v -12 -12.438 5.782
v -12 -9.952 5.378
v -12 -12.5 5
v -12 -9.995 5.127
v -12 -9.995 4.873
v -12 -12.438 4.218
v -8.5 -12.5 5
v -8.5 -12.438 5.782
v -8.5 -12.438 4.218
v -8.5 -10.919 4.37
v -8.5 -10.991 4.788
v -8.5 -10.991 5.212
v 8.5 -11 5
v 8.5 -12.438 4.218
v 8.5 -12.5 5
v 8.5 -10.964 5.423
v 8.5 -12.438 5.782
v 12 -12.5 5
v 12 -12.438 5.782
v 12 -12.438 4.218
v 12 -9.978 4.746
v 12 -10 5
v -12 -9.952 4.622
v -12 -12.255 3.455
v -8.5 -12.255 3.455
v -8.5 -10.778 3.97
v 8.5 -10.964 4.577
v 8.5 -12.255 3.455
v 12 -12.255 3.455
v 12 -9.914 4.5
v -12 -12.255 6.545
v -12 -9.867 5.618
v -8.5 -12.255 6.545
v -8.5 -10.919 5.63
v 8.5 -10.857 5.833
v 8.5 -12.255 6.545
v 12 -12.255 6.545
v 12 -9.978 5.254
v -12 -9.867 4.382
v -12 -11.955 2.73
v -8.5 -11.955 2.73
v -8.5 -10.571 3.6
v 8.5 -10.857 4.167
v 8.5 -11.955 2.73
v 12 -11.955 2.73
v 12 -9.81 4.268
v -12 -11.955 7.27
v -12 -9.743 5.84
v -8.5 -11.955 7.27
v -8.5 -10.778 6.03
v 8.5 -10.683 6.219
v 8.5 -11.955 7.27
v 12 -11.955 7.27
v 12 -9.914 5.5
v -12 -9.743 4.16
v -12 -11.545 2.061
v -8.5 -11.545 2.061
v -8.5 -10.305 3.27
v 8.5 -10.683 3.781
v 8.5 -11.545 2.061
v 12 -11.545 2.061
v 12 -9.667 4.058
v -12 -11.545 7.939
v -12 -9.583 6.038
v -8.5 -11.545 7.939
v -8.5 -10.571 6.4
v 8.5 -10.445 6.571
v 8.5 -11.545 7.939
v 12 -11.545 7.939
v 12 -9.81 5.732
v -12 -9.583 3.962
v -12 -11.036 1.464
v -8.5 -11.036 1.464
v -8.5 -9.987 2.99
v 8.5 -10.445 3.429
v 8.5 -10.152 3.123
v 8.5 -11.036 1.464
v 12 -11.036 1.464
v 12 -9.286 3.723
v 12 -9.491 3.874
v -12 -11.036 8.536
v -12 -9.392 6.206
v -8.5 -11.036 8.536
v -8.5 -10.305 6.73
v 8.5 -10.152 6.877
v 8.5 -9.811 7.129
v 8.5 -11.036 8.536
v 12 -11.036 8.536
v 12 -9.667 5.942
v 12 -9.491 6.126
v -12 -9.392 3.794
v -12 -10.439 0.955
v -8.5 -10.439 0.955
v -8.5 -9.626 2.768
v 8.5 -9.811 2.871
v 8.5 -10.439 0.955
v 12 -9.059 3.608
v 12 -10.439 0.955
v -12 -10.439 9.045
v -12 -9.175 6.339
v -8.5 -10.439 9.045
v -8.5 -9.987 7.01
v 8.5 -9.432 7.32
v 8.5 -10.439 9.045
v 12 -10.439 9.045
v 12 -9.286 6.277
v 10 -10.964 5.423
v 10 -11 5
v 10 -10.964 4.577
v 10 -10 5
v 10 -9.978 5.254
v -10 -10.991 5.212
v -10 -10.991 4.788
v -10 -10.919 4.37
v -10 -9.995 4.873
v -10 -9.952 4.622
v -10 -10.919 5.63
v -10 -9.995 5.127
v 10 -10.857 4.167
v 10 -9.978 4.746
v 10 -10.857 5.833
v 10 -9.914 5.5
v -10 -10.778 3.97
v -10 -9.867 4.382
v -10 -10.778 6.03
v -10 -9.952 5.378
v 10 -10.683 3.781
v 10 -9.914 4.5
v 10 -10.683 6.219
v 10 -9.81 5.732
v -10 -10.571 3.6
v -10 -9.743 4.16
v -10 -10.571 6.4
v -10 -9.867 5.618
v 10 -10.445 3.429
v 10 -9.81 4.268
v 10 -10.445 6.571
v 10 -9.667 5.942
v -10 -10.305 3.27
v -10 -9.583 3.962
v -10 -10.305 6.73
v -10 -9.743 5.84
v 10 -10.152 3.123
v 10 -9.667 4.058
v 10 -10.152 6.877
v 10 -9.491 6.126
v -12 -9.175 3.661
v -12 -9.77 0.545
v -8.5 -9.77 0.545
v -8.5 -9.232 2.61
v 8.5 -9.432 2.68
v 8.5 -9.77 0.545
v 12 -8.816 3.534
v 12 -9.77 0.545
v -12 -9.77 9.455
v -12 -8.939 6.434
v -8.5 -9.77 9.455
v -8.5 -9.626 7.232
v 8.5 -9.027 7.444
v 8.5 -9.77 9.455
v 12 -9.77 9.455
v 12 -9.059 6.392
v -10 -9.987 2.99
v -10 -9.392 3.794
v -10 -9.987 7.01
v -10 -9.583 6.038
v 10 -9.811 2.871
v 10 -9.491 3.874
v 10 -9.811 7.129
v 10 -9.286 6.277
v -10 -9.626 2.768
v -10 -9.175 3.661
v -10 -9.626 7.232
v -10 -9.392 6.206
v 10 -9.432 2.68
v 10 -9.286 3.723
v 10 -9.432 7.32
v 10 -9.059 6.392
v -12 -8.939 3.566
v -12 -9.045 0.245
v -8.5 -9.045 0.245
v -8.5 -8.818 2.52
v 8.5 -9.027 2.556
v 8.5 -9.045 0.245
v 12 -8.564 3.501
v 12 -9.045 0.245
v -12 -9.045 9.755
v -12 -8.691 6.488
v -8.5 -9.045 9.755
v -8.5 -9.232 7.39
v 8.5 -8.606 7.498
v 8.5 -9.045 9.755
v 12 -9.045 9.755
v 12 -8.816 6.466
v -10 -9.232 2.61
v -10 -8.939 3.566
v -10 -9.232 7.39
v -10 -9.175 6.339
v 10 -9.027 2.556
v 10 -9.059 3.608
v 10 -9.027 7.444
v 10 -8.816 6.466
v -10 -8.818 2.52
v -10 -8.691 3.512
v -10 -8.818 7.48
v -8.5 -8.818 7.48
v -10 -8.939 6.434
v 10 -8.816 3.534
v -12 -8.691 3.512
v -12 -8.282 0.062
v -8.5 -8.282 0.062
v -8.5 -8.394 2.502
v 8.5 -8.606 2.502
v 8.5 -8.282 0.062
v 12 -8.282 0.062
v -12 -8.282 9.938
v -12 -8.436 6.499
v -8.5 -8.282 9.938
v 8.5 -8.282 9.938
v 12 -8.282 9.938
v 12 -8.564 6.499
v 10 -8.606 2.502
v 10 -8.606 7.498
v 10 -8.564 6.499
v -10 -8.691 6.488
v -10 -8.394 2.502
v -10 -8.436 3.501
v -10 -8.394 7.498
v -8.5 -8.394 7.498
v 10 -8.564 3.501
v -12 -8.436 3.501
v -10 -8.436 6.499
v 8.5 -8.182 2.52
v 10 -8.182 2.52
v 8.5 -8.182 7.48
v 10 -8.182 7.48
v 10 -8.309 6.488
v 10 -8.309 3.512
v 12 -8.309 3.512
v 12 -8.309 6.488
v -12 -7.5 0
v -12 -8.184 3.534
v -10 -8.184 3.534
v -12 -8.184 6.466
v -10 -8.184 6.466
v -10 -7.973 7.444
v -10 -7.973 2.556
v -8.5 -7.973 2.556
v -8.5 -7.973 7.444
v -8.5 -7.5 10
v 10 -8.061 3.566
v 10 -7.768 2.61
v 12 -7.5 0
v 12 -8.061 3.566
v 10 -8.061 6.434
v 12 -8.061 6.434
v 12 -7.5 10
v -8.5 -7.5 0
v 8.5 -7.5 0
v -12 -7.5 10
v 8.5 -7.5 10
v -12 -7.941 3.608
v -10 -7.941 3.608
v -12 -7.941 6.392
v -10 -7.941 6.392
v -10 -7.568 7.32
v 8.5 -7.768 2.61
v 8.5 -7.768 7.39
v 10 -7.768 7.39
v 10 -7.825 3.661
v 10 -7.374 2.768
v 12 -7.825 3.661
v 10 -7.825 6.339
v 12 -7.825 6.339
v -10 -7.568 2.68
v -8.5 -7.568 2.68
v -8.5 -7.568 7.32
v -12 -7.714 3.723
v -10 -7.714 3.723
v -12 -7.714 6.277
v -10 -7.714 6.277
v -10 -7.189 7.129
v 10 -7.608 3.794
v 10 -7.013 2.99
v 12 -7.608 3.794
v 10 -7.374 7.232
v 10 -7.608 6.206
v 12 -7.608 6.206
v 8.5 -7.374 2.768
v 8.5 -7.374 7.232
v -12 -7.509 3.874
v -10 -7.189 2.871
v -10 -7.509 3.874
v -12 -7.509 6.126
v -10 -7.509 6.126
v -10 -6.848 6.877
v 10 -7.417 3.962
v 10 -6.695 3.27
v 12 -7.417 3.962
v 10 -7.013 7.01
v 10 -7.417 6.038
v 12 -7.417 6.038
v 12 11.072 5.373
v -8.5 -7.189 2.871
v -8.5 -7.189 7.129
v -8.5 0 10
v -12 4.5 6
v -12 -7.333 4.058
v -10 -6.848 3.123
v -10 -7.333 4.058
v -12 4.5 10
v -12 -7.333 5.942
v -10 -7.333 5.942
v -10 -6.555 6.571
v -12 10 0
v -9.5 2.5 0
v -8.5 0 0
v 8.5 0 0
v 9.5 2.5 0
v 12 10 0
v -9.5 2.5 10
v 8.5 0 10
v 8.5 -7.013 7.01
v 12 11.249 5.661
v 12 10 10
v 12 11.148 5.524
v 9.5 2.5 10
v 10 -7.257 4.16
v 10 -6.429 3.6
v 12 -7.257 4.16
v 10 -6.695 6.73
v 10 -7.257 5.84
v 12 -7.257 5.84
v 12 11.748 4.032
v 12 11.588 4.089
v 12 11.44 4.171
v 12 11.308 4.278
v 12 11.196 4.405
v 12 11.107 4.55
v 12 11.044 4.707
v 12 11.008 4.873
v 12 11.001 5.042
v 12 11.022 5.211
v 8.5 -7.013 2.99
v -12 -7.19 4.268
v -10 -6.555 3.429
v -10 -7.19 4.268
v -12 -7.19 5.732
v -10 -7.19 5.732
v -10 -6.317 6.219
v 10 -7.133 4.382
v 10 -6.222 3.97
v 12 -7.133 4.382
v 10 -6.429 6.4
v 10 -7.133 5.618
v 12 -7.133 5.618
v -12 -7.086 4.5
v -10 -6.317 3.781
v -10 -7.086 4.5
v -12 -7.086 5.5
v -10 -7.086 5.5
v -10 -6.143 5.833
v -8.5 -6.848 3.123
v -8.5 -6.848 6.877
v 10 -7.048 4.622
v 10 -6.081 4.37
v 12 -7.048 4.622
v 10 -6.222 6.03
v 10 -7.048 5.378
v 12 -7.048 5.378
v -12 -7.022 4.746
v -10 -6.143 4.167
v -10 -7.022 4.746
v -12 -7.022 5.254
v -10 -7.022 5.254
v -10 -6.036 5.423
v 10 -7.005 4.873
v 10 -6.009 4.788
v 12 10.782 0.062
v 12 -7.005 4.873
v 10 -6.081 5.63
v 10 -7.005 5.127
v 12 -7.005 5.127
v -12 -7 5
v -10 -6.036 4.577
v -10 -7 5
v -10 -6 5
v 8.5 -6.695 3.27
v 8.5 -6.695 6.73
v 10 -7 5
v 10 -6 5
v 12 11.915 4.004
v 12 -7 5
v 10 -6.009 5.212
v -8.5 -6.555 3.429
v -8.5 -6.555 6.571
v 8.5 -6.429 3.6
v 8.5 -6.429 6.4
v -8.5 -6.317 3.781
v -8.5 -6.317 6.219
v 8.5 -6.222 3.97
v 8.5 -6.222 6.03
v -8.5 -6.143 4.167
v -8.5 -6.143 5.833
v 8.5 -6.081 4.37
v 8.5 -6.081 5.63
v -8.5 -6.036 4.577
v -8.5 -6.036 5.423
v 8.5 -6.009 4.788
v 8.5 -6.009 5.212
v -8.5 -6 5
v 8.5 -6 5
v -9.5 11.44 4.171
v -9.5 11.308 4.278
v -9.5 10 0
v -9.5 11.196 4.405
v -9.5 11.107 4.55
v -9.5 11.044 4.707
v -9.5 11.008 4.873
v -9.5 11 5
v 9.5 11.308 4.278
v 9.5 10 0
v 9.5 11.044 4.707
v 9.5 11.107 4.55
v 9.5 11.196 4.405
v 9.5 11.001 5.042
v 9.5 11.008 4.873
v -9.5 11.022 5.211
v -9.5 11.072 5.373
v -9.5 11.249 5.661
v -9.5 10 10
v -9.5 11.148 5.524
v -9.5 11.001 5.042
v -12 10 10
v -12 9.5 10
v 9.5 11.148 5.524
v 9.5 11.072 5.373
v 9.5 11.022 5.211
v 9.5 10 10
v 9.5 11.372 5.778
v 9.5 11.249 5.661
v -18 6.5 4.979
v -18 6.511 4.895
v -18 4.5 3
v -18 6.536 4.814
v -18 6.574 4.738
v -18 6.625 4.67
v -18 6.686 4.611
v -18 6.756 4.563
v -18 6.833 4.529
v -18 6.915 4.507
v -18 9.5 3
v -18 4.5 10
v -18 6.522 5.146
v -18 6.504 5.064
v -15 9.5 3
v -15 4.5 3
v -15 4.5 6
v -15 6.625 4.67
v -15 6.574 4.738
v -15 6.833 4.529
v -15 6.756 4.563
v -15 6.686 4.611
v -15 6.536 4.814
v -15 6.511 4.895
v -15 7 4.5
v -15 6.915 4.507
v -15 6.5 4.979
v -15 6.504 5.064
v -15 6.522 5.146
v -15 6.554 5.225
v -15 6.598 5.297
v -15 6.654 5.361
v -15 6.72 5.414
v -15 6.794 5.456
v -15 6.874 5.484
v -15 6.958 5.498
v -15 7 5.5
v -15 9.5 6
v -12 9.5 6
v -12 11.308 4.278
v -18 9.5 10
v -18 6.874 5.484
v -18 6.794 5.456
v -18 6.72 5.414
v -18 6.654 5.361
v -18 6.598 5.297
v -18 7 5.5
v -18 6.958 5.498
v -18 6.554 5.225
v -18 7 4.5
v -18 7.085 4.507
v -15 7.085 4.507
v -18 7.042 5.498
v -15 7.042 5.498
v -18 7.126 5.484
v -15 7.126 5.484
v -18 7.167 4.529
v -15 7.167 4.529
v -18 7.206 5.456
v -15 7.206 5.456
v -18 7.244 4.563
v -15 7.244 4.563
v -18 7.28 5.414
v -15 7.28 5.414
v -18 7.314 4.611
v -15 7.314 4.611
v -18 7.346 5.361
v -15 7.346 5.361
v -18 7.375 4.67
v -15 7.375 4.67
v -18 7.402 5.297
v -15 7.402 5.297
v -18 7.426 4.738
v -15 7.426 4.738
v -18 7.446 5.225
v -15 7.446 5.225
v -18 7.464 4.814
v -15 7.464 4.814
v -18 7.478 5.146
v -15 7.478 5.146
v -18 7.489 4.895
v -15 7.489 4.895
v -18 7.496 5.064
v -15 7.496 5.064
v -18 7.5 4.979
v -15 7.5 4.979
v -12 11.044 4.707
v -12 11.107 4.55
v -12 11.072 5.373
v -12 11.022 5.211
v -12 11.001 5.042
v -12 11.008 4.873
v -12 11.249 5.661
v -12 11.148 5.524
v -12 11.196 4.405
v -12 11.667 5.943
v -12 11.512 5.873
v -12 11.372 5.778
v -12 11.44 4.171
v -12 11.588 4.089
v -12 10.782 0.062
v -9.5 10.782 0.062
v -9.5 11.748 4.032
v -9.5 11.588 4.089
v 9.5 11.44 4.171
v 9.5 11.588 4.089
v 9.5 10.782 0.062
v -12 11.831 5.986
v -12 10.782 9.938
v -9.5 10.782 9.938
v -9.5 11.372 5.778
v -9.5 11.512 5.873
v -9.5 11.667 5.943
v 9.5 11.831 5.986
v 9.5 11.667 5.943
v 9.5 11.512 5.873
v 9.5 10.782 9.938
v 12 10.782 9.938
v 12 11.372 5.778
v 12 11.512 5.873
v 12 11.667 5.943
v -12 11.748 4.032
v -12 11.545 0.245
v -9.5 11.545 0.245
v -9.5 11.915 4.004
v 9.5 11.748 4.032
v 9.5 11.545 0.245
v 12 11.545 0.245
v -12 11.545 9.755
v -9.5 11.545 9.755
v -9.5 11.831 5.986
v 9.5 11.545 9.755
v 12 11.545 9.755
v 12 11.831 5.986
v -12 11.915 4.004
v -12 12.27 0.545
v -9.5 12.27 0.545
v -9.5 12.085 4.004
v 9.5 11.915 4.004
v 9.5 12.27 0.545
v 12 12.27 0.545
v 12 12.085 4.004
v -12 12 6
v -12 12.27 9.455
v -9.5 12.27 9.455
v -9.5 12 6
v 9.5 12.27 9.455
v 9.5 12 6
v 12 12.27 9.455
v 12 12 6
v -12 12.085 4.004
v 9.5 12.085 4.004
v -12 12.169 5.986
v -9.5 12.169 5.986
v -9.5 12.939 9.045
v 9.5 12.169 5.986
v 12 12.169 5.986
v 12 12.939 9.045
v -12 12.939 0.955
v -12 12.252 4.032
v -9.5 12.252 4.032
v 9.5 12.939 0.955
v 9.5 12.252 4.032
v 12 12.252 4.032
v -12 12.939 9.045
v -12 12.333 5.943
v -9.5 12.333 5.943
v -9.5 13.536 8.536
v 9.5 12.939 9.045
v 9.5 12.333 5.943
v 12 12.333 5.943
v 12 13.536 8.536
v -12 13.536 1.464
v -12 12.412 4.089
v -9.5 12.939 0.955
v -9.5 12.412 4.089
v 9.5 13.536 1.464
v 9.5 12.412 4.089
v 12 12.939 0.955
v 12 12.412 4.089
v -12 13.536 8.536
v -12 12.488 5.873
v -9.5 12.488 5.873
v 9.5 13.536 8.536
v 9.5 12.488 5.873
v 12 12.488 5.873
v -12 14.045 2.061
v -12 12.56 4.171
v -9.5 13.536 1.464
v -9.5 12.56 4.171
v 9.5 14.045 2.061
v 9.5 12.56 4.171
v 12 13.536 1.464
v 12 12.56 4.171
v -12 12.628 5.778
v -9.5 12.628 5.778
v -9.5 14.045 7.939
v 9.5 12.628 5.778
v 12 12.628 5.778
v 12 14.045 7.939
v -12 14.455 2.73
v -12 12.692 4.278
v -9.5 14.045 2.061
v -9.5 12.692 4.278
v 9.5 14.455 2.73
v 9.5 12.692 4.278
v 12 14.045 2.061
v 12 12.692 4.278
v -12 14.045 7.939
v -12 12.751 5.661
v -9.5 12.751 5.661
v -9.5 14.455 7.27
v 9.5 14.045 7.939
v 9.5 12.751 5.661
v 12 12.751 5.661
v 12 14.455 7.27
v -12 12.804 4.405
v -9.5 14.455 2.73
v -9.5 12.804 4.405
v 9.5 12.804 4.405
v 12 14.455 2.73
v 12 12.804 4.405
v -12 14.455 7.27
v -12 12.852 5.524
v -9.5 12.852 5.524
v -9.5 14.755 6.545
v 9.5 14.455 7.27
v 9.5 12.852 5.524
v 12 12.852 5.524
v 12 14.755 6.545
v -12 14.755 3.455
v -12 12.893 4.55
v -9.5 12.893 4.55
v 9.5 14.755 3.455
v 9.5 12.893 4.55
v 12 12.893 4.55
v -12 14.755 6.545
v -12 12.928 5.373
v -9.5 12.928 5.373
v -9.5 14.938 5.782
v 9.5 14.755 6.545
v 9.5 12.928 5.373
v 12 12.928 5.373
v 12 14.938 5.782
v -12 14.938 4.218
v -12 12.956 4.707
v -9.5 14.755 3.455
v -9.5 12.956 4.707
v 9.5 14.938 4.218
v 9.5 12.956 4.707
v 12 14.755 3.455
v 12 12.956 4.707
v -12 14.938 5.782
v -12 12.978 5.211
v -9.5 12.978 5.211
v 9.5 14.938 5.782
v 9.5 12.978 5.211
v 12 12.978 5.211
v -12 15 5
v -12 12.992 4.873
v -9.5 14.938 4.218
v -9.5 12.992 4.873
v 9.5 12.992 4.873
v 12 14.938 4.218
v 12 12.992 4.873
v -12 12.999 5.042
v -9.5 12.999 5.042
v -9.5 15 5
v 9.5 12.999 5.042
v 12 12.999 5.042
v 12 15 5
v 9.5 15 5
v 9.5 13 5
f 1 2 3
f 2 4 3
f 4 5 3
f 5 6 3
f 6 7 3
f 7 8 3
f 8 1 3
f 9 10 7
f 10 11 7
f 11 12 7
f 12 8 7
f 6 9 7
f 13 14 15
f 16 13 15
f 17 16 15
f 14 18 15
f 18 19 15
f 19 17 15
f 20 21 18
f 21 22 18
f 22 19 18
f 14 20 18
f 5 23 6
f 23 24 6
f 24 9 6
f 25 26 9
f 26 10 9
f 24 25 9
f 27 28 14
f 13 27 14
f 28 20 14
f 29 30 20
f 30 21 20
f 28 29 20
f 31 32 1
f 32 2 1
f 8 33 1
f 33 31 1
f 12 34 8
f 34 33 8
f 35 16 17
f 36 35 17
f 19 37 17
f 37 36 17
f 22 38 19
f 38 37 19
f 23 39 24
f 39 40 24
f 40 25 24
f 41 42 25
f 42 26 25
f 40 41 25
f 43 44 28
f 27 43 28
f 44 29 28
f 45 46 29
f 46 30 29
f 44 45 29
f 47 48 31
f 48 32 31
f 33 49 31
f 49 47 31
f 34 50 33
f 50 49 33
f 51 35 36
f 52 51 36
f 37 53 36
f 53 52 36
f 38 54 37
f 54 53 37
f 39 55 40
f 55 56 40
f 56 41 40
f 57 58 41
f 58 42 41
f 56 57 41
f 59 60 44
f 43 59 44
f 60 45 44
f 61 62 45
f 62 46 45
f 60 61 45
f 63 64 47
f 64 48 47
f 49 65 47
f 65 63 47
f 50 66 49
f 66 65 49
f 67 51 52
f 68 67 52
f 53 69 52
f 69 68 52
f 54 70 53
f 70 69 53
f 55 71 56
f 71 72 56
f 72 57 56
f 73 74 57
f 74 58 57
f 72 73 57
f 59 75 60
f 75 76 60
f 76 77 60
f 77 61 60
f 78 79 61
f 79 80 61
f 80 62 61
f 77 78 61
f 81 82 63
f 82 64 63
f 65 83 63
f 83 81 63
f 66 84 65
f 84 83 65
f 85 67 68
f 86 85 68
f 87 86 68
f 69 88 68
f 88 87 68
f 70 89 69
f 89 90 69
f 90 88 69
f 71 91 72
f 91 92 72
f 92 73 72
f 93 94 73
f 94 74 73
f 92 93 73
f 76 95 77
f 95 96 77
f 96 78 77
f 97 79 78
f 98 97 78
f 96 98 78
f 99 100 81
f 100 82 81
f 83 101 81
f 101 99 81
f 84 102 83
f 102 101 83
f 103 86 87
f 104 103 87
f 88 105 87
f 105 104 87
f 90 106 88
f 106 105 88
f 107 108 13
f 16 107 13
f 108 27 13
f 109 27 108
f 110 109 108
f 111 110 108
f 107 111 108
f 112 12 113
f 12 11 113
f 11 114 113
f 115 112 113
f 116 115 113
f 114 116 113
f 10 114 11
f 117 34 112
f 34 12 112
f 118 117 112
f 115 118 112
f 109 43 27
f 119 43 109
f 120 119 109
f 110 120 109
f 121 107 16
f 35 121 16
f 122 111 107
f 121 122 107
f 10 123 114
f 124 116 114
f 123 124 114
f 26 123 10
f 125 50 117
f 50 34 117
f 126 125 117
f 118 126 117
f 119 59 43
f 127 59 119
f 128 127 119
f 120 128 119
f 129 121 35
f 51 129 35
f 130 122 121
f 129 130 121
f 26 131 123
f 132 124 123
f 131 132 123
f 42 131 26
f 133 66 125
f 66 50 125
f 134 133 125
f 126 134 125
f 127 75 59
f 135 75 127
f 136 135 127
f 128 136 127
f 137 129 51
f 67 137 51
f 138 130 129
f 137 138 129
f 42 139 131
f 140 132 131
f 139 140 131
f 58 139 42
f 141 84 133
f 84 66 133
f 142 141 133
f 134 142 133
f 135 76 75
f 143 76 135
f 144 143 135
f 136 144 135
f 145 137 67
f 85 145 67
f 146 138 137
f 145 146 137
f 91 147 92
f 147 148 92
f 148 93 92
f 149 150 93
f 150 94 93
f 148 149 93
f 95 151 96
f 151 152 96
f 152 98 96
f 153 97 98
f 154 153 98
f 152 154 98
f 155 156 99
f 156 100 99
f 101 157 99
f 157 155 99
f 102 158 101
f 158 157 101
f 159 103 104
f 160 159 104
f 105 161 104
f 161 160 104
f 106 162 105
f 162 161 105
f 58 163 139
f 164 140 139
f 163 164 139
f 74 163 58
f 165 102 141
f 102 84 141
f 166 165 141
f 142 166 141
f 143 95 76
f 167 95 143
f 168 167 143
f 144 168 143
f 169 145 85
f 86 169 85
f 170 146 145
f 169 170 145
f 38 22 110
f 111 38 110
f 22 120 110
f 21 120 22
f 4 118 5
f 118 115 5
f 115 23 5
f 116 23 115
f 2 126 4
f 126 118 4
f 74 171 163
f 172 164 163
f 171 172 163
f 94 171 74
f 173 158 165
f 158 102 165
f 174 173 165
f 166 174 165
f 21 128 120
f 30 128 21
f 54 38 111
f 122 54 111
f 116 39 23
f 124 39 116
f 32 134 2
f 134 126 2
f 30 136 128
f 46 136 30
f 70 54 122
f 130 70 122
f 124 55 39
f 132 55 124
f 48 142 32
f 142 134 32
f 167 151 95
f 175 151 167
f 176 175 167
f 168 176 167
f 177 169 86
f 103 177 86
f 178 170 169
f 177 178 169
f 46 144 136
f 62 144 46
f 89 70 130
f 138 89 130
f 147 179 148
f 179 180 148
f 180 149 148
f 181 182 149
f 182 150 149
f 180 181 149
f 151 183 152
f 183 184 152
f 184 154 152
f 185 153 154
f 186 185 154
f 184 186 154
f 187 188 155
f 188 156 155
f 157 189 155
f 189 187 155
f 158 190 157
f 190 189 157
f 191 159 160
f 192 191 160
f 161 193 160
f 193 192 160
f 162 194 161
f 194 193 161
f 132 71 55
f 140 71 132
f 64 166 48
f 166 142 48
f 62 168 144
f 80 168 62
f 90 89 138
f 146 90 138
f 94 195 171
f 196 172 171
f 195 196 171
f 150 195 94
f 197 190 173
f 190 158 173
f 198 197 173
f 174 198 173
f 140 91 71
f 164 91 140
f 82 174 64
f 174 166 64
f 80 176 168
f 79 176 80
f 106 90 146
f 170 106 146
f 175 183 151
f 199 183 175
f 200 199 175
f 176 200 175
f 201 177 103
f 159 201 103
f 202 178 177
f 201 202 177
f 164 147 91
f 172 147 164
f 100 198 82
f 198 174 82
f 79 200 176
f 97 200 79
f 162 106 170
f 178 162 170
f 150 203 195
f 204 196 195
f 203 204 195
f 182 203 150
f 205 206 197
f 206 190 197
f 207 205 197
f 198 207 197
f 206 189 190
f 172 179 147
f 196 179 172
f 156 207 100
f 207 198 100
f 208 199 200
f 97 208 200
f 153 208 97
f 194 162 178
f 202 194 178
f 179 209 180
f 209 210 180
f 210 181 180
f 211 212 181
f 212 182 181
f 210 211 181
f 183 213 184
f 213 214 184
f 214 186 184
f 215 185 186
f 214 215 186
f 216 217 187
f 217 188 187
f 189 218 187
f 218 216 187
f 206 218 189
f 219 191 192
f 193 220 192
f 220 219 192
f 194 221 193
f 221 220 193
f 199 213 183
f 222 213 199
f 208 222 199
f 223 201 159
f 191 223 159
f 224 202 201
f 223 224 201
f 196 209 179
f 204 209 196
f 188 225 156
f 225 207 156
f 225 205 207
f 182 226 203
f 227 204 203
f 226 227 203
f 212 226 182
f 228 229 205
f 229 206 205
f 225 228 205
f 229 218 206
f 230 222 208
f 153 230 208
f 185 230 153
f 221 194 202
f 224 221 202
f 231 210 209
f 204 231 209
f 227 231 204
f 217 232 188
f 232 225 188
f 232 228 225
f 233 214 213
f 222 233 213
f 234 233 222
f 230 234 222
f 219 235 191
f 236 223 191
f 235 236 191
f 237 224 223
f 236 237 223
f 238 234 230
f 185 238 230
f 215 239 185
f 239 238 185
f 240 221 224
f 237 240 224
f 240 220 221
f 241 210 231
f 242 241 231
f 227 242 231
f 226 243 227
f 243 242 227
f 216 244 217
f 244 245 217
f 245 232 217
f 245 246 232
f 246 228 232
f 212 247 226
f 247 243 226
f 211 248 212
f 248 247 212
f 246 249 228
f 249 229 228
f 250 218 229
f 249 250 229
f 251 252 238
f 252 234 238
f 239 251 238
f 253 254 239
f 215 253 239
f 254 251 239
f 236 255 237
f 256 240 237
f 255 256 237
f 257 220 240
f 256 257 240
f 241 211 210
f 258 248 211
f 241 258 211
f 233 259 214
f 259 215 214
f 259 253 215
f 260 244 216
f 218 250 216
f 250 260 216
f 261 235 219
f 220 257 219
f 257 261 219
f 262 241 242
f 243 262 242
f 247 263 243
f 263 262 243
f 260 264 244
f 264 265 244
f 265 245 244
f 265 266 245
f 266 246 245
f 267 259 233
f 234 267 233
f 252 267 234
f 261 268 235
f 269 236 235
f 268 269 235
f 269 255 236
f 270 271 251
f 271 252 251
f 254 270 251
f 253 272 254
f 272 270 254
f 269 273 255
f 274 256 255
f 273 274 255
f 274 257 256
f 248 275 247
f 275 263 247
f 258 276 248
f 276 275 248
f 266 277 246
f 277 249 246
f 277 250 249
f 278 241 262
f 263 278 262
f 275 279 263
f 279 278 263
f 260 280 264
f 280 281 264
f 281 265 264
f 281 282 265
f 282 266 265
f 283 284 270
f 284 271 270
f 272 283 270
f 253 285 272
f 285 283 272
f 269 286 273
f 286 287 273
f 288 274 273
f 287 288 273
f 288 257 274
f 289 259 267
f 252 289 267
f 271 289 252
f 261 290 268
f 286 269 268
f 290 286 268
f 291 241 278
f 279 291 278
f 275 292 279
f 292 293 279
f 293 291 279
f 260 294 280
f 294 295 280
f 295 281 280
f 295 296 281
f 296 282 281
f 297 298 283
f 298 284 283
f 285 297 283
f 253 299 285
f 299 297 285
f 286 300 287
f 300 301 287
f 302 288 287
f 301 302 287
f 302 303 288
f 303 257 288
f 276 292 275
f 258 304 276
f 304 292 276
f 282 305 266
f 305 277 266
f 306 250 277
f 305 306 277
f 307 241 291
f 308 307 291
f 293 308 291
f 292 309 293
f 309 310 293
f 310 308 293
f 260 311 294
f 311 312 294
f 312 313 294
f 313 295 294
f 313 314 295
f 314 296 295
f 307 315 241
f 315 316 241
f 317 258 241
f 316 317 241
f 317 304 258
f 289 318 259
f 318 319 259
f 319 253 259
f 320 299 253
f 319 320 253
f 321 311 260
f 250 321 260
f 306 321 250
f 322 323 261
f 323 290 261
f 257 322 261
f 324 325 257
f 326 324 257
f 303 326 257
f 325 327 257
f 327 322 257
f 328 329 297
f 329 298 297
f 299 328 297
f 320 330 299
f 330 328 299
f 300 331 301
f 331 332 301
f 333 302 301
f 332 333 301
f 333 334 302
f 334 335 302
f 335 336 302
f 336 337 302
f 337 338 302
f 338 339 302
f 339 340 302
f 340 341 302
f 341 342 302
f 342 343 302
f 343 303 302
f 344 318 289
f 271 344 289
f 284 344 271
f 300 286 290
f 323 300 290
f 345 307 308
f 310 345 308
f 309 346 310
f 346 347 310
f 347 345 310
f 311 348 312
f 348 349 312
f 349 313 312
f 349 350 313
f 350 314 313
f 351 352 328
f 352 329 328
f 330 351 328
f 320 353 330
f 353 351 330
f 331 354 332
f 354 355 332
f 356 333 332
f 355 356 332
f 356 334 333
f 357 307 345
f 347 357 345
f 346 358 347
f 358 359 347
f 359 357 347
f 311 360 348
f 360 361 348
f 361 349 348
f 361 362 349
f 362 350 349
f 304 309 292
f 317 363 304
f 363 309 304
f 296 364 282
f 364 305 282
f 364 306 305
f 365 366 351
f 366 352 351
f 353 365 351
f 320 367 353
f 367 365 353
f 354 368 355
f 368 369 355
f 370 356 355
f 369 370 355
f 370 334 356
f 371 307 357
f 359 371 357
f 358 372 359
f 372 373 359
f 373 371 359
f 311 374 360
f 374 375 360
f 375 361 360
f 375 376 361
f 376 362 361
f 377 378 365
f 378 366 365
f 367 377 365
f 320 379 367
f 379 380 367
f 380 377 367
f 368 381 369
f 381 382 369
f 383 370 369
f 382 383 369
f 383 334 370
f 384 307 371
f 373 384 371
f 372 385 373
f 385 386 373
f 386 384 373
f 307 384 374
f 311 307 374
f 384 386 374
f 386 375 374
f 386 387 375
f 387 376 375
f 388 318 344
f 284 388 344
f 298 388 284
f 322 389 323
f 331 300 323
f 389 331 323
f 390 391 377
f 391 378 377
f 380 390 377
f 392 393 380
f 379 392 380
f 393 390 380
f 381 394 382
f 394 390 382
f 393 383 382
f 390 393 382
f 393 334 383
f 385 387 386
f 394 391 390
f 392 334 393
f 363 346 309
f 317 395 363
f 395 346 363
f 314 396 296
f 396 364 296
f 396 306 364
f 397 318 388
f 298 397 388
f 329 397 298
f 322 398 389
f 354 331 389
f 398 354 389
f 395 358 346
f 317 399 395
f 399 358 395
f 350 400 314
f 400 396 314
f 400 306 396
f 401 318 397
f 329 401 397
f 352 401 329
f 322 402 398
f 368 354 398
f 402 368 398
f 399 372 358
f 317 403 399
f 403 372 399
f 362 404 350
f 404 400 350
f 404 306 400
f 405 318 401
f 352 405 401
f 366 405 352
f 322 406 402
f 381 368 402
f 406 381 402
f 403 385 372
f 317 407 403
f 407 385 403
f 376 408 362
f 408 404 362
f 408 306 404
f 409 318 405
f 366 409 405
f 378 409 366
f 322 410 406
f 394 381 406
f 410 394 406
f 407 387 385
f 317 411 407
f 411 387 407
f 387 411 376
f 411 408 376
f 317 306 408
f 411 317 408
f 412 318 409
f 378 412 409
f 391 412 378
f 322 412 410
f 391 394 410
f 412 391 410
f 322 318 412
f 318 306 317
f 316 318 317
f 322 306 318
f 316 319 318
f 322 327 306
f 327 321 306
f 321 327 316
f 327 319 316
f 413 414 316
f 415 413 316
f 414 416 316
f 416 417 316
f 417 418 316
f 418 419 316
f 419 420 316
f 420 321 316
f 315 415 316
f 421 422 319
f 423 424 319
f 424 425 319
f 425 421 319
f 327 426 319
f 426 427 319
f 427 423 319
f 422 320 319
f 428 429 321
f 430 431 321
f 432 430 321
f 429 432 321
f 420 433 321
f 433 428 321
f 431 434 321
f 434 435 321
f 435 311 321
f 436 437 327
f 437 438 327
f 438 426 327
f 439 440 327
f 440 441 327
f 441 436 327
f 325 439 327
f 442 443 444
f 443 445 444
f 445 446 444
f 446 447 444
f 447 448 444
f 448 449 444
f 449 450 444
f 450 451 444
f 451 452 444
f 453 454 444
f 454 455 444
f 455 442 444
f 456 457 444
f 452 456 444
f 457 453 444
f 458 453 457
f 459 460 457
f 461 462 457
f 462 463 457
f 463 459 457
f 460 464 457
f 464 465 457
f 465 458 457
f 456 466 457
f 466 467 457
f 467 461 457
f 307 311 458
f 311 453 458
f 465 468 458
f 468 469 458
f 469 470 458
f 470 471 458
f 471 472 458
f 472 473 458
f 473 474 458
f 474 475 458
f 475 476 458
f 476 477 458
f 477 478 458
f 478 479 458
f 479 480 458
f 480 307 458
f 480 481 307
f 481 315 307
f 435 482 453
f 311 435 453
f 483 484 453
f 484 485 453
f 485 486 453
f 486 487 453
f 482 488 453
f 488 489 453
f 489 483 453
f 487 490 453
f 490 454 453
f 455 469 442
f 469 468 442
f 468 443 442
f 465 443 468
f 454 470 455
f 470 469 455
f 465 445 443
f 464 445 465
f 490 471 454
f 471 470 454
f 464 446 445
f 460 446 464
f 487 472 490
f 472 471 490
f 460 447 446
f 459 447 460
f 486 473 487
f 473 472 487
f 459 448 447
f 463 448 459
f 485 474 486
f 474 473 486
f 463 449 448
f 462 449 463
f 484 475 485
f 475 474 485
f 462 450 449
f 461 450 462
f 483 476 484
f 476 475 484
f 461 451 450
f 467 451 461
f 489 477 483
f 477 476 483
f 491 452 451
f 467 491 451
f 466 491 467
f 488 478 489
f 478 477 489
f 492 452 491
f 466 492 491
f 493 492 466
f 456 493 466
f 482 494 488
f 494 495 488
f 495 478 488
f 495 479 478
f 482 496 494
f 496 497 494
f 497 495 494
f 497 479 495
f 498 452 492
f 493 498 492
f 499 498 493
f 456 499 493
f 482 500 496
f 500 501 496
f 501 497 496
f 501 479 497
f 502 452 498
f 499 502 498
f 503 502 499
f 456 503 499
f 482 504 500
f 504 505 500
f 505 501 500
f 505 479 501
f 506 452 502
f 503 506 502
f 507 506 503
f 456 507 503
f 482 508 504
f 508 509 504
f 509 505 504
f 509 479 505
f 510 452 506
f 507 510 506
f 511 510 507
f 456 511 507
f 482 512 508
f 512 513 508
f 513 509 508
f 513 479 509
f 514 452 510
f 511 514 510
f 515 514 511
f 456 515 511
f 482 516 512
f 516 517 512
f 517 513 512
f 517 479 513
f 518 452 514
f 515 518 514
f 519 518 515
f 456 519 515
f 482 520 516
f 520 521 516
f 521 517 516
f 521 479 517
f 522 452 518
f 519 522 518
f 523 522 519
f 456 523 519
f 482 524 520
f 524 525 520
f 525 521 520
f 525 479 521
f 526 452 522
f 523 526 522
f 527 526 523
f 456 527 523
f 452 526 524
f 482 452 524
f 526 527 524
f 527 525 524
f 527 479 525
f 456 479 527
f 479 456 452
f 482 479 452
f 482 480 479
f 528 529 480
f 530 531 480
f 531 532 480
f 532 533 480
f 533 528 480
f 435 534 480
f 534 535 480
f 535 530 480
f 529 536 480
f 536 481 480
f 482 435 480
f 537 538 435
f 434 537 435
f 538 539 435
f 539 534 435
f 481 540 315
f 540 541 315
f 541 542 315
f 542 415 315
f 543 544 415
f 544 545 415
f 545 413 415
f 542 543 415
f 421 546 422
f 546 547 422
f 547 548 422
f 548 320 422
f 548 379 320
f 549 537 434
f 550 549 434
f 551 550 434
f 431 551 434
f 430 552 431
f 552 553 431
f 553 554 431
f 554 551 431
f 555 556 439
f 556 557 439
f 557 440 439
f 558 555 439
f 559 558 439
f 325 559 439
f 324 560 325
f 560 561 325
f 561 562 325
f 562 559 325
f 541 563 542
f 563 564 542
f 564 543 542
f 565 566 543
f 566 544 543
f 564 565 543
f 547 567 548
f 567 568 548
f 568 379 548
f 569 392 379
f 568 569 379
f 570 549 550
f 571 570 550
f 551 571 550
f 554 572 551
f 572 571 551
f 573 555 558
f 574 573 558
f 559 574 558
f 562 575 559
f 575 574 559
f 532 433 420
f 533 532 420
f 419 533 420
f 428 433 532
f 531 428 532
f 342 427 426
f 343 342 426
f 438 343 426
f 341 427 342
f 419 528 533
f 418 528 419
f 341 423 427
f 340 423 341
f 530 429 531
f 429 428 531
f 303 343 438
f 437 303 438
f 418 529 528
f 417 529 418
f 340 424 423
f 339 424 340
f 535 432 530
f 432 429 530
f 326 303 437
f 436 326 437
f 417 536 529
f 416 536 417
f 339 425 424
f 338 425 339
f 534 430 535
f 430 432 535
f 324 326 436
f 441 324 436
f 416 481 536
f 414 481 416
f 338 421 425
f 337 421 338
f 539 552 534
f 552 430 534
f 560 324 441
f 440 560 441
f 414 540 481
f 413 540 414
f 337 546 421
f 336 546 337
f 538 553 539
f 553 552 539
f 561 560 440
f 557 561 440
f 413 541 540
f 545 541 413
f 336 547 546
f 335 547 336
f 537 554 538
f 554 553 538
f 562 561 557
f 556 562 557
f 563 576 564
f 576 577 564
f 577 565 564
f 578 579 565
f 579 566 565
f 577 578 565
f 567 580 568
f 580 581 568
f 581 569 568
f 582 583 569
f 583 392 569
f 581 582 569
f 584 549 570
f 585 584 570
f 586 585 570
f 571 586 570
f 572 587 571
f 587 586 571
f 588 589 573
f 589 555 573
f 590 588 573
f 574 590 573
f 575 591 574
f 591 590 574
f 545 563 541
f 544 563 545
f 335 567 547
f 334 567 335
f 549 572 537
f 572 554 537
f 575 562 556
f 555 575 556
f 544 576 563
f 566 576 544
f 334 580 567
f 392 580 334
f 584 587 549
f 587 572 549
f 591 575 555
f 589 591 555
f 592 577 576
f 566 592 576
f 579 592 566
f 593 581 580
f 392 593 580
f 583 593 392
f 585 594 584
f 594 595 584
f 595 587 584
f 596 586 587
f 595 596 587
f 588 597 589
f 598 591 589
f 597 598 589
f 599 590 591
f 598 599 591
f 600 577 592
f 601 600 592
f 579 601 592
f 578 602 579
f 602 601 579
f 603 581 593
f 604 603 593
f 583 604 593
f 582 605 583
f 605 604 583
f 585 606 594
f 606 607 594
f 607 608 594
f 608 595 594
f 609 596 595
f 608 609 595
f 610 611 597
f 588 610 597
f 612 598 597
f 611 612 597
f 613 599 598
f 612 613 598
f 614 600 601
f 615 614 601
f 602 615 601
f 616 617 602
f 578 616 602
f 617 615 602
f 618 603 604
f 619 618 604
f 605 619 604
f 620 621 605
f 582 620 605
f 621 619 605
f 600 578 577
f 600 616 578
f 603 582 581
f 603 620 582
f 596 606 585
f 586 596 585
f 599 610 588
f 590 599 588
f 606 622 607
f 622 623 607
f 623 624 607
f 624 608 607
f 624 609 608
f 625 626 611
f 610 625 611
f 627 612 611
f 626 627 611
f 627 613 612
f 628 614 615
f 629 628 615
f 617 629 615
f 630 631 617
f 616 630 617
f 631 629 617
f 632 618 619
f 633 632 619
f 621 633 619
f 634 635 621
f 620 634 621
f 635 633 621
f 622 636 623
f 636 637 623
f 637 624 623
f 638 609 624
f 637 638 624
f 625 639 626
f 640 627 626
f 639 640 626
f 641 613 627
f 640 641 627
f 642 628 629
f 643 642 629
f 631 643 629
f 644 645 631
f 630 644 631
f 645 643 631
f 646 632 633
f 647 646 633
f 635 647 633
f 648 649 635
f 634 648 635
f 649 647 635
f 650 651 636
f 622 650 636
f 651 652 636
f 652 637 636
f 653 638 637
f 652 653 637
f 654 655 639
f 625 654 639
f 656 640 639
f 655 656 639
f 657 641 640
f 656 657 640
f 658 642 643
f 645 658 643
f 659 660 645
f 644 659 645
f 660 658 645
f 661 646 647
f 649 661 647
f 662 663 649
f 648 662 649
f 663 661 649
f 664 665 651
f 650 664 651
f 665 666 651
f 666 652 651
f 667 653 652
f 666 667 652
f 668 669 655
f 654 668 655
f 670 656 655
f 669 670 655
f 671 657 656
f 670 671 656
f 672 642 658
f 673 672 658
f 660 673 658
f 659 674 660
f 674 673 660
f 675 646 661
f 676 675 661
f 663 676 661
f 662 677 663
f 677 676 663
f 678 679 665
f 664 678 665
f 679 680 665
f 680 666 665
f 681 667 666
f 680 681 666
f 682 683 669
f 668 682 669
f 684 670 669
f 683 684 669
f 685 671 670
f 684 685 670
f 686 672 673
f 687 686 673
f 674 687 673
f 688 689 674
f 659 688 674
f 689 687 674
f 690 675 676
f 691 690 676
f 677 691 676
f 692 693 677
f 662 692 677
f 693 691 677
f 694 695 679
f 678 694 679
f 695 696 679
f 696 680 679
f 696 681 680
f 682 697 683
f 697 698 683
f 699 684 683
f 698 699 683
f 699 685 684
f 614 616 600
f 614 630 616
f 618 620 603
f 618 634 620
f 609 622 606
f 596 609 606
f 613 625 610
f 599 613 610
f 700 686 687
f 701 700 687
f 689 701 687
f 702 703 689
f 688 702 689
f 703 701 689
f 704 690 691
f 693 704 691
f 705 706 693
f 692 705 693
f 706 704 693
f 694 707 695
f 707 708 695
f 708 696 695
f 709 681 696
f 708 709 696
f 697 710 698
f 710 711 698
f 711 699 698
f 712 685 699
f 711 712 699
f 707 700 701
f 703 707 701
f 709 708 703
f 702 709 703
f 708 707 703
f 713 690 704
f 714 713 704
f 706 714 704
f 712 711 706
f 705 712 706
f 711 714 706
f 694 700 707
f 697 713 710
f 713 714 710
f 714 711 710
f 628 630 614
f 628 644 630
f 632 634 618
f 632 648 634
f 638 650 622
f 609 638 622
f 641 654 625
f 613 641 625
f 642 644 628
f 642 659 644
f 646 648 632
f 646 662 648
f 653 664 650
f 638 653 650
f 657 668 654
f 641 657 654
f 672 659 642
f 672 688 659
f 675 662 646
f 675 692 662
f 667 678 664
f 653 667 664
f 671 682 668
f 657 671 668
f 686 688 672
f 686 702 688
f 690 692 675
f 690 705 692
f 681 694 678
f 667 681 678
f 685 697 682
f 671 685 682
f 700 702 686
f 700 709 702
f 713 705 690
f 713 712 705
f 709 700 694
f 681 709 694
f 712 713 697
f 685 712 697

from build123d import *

# Parameters (mm, degrees)
SALIENTE_EXTRUIR1_DEPTH = 10
CROQUIS2_R              = 2.5
CORTAR_EXTRUIR1_DEPTH   = 1.5
CROQUIS3_R              = 1.5
CORTAR_EXTRUIR2_DEPTH   = 2
CORTAR_EXTRUIR3_START   = -24
CROQUIS6_R              = 1
CORTAR_EXTRUIR3_DEPTH   = 24
CROQUIS9_W              = 7
CROQUIS9_H              = 5
CROQUIS9_R              = 0.5
SALIENTE_EXTRUIR4_DEPTH = 6
CROQUIS10_W             = 3
CROQUIS10_H             = 3
CORTAR_EXTRUIR4_DEPTH   = 5
REDONDEO1_R             = 5


with BuildPart() as part:
    # Croquis1 → Saliente-Extruir1 (new body)
    with BuildSketch(Plane.XY):
        Polygon((8.5, 0), (-8.5, 0), (-8.5, -12.5), (-12, -12.5), (-12, 2.5), (-12, 15), (-9.5, 15), (-9.5, 2.5), (9.5, 2.5), (9.5, 15), (12, 15), (12, 2.5), (12, -12.5), (8.5, -12.5), align=None)
    extrude(amount=SALIENTE_EXTRUIR1_DEPTH)

    # Croquis2 → Cortar-Extruir1 (cut)
    with BuildSketch(Plane(origin=(-8.5, 0, 0), x_dir=(0, 0, -1), z_dir=(1, 0, 0))):
        with Locations(Location((-5, -8.5, 0), (0, 0, 90))):
            Circle(CROQUIS2_R)
    cortar_extruir1 = extrude(amount=-CORTAR_EXTRUIR1_DEPTH, mode=Mode.SUBTRACT)

    # Croquis3 → Cortar-Extruir2 (cut)
    with BuildSketch(Plane(origin=(-10, 0, 0), x_dir=(0, 0, -1), z_dir=(1, 0, 0))):
        with Locations(Location((-5, -8.5, 0), (0, 0, 90))):
            Circle(CROQUIS3_R)
    cortar_extruir2 = extrude(amount=-CORTAR_EXTRUIR2_DEPTH, mode=Mode.SUBTRACT)

    # Simetría1: Cortar-Extruir1, Cortar-Extruir2 across plane
    add(cortar_extruir1.mirror(Plane(origin=(0, 0, 0), x_dir=(0, 0, 1), z_dir=(1, 0, 0))), mode=Mode.SUBTRACT)
    add(cortar_extruir2.mirror(Plane(origin=(0, 0, 0), x_dir=(0, 0, 1), z_dir=(1, 0, 0))), mode=Mode.SUBTRACT)

    # Croquis6 → Cortar-Extruir3 (cut)
    with BuildSketch(Plane.ZY.offset(12).offset(CORTAR_EXTRUIR3_START)):
        with Locations((5, 12)):
            Circle(CROQUIS6_R)
    extrude(amount=CORTAR_EXTRUIR3_DEPTH, mode=Mode.SUBTRACT)

    # Croquis9 → Saliente-Extruir4 (add)
    with BuildSketch(Plane.ZY.offset(12)):
        with Locations((6.5, 7)):
            Rectangle(CROQUIS9_W, CROQUIS9_H)
        with Locations((5, 7)):
            Circle(CROQUIS9_R, mode=Mode.SUBTRACT)
    extrude(amount=SALIENTE_EXTRUIR4_DEPTH)

    # Croquis10 → Cortar-Extruir4 (cut)
    with BuildSketch(Plane.XZ.offset(-4.5)):
        with Locations((-13.5, 4.5)):
            Rectangle(CROQUIS10_W, CROQUIS10_H)
    extrude(amount=-CORTAR_EXTRUIR4_DEPTH, mode=Mode.SUBTRACT)

    # Redondeo1
    redondeo1_edges = [part.edges().sort_by_distance(p)[0] for p in [
        (10.25, -12.5, 10),
        (-10.25, -12.5, 10),
        (-10.25, -12.5, 0),
        (10.25, -12.5, 0),
        (-10.75, 15, 10),
        (-10.75, 15, 0),
        (10.75, 15, 10),
        (10.75, 15, 0),
    ]]
    fillet(redondeo1_edges, radius=REDONDEO1_R - 0.0001)  # a hair under: the kernel refuses the full size


solid = part.part
